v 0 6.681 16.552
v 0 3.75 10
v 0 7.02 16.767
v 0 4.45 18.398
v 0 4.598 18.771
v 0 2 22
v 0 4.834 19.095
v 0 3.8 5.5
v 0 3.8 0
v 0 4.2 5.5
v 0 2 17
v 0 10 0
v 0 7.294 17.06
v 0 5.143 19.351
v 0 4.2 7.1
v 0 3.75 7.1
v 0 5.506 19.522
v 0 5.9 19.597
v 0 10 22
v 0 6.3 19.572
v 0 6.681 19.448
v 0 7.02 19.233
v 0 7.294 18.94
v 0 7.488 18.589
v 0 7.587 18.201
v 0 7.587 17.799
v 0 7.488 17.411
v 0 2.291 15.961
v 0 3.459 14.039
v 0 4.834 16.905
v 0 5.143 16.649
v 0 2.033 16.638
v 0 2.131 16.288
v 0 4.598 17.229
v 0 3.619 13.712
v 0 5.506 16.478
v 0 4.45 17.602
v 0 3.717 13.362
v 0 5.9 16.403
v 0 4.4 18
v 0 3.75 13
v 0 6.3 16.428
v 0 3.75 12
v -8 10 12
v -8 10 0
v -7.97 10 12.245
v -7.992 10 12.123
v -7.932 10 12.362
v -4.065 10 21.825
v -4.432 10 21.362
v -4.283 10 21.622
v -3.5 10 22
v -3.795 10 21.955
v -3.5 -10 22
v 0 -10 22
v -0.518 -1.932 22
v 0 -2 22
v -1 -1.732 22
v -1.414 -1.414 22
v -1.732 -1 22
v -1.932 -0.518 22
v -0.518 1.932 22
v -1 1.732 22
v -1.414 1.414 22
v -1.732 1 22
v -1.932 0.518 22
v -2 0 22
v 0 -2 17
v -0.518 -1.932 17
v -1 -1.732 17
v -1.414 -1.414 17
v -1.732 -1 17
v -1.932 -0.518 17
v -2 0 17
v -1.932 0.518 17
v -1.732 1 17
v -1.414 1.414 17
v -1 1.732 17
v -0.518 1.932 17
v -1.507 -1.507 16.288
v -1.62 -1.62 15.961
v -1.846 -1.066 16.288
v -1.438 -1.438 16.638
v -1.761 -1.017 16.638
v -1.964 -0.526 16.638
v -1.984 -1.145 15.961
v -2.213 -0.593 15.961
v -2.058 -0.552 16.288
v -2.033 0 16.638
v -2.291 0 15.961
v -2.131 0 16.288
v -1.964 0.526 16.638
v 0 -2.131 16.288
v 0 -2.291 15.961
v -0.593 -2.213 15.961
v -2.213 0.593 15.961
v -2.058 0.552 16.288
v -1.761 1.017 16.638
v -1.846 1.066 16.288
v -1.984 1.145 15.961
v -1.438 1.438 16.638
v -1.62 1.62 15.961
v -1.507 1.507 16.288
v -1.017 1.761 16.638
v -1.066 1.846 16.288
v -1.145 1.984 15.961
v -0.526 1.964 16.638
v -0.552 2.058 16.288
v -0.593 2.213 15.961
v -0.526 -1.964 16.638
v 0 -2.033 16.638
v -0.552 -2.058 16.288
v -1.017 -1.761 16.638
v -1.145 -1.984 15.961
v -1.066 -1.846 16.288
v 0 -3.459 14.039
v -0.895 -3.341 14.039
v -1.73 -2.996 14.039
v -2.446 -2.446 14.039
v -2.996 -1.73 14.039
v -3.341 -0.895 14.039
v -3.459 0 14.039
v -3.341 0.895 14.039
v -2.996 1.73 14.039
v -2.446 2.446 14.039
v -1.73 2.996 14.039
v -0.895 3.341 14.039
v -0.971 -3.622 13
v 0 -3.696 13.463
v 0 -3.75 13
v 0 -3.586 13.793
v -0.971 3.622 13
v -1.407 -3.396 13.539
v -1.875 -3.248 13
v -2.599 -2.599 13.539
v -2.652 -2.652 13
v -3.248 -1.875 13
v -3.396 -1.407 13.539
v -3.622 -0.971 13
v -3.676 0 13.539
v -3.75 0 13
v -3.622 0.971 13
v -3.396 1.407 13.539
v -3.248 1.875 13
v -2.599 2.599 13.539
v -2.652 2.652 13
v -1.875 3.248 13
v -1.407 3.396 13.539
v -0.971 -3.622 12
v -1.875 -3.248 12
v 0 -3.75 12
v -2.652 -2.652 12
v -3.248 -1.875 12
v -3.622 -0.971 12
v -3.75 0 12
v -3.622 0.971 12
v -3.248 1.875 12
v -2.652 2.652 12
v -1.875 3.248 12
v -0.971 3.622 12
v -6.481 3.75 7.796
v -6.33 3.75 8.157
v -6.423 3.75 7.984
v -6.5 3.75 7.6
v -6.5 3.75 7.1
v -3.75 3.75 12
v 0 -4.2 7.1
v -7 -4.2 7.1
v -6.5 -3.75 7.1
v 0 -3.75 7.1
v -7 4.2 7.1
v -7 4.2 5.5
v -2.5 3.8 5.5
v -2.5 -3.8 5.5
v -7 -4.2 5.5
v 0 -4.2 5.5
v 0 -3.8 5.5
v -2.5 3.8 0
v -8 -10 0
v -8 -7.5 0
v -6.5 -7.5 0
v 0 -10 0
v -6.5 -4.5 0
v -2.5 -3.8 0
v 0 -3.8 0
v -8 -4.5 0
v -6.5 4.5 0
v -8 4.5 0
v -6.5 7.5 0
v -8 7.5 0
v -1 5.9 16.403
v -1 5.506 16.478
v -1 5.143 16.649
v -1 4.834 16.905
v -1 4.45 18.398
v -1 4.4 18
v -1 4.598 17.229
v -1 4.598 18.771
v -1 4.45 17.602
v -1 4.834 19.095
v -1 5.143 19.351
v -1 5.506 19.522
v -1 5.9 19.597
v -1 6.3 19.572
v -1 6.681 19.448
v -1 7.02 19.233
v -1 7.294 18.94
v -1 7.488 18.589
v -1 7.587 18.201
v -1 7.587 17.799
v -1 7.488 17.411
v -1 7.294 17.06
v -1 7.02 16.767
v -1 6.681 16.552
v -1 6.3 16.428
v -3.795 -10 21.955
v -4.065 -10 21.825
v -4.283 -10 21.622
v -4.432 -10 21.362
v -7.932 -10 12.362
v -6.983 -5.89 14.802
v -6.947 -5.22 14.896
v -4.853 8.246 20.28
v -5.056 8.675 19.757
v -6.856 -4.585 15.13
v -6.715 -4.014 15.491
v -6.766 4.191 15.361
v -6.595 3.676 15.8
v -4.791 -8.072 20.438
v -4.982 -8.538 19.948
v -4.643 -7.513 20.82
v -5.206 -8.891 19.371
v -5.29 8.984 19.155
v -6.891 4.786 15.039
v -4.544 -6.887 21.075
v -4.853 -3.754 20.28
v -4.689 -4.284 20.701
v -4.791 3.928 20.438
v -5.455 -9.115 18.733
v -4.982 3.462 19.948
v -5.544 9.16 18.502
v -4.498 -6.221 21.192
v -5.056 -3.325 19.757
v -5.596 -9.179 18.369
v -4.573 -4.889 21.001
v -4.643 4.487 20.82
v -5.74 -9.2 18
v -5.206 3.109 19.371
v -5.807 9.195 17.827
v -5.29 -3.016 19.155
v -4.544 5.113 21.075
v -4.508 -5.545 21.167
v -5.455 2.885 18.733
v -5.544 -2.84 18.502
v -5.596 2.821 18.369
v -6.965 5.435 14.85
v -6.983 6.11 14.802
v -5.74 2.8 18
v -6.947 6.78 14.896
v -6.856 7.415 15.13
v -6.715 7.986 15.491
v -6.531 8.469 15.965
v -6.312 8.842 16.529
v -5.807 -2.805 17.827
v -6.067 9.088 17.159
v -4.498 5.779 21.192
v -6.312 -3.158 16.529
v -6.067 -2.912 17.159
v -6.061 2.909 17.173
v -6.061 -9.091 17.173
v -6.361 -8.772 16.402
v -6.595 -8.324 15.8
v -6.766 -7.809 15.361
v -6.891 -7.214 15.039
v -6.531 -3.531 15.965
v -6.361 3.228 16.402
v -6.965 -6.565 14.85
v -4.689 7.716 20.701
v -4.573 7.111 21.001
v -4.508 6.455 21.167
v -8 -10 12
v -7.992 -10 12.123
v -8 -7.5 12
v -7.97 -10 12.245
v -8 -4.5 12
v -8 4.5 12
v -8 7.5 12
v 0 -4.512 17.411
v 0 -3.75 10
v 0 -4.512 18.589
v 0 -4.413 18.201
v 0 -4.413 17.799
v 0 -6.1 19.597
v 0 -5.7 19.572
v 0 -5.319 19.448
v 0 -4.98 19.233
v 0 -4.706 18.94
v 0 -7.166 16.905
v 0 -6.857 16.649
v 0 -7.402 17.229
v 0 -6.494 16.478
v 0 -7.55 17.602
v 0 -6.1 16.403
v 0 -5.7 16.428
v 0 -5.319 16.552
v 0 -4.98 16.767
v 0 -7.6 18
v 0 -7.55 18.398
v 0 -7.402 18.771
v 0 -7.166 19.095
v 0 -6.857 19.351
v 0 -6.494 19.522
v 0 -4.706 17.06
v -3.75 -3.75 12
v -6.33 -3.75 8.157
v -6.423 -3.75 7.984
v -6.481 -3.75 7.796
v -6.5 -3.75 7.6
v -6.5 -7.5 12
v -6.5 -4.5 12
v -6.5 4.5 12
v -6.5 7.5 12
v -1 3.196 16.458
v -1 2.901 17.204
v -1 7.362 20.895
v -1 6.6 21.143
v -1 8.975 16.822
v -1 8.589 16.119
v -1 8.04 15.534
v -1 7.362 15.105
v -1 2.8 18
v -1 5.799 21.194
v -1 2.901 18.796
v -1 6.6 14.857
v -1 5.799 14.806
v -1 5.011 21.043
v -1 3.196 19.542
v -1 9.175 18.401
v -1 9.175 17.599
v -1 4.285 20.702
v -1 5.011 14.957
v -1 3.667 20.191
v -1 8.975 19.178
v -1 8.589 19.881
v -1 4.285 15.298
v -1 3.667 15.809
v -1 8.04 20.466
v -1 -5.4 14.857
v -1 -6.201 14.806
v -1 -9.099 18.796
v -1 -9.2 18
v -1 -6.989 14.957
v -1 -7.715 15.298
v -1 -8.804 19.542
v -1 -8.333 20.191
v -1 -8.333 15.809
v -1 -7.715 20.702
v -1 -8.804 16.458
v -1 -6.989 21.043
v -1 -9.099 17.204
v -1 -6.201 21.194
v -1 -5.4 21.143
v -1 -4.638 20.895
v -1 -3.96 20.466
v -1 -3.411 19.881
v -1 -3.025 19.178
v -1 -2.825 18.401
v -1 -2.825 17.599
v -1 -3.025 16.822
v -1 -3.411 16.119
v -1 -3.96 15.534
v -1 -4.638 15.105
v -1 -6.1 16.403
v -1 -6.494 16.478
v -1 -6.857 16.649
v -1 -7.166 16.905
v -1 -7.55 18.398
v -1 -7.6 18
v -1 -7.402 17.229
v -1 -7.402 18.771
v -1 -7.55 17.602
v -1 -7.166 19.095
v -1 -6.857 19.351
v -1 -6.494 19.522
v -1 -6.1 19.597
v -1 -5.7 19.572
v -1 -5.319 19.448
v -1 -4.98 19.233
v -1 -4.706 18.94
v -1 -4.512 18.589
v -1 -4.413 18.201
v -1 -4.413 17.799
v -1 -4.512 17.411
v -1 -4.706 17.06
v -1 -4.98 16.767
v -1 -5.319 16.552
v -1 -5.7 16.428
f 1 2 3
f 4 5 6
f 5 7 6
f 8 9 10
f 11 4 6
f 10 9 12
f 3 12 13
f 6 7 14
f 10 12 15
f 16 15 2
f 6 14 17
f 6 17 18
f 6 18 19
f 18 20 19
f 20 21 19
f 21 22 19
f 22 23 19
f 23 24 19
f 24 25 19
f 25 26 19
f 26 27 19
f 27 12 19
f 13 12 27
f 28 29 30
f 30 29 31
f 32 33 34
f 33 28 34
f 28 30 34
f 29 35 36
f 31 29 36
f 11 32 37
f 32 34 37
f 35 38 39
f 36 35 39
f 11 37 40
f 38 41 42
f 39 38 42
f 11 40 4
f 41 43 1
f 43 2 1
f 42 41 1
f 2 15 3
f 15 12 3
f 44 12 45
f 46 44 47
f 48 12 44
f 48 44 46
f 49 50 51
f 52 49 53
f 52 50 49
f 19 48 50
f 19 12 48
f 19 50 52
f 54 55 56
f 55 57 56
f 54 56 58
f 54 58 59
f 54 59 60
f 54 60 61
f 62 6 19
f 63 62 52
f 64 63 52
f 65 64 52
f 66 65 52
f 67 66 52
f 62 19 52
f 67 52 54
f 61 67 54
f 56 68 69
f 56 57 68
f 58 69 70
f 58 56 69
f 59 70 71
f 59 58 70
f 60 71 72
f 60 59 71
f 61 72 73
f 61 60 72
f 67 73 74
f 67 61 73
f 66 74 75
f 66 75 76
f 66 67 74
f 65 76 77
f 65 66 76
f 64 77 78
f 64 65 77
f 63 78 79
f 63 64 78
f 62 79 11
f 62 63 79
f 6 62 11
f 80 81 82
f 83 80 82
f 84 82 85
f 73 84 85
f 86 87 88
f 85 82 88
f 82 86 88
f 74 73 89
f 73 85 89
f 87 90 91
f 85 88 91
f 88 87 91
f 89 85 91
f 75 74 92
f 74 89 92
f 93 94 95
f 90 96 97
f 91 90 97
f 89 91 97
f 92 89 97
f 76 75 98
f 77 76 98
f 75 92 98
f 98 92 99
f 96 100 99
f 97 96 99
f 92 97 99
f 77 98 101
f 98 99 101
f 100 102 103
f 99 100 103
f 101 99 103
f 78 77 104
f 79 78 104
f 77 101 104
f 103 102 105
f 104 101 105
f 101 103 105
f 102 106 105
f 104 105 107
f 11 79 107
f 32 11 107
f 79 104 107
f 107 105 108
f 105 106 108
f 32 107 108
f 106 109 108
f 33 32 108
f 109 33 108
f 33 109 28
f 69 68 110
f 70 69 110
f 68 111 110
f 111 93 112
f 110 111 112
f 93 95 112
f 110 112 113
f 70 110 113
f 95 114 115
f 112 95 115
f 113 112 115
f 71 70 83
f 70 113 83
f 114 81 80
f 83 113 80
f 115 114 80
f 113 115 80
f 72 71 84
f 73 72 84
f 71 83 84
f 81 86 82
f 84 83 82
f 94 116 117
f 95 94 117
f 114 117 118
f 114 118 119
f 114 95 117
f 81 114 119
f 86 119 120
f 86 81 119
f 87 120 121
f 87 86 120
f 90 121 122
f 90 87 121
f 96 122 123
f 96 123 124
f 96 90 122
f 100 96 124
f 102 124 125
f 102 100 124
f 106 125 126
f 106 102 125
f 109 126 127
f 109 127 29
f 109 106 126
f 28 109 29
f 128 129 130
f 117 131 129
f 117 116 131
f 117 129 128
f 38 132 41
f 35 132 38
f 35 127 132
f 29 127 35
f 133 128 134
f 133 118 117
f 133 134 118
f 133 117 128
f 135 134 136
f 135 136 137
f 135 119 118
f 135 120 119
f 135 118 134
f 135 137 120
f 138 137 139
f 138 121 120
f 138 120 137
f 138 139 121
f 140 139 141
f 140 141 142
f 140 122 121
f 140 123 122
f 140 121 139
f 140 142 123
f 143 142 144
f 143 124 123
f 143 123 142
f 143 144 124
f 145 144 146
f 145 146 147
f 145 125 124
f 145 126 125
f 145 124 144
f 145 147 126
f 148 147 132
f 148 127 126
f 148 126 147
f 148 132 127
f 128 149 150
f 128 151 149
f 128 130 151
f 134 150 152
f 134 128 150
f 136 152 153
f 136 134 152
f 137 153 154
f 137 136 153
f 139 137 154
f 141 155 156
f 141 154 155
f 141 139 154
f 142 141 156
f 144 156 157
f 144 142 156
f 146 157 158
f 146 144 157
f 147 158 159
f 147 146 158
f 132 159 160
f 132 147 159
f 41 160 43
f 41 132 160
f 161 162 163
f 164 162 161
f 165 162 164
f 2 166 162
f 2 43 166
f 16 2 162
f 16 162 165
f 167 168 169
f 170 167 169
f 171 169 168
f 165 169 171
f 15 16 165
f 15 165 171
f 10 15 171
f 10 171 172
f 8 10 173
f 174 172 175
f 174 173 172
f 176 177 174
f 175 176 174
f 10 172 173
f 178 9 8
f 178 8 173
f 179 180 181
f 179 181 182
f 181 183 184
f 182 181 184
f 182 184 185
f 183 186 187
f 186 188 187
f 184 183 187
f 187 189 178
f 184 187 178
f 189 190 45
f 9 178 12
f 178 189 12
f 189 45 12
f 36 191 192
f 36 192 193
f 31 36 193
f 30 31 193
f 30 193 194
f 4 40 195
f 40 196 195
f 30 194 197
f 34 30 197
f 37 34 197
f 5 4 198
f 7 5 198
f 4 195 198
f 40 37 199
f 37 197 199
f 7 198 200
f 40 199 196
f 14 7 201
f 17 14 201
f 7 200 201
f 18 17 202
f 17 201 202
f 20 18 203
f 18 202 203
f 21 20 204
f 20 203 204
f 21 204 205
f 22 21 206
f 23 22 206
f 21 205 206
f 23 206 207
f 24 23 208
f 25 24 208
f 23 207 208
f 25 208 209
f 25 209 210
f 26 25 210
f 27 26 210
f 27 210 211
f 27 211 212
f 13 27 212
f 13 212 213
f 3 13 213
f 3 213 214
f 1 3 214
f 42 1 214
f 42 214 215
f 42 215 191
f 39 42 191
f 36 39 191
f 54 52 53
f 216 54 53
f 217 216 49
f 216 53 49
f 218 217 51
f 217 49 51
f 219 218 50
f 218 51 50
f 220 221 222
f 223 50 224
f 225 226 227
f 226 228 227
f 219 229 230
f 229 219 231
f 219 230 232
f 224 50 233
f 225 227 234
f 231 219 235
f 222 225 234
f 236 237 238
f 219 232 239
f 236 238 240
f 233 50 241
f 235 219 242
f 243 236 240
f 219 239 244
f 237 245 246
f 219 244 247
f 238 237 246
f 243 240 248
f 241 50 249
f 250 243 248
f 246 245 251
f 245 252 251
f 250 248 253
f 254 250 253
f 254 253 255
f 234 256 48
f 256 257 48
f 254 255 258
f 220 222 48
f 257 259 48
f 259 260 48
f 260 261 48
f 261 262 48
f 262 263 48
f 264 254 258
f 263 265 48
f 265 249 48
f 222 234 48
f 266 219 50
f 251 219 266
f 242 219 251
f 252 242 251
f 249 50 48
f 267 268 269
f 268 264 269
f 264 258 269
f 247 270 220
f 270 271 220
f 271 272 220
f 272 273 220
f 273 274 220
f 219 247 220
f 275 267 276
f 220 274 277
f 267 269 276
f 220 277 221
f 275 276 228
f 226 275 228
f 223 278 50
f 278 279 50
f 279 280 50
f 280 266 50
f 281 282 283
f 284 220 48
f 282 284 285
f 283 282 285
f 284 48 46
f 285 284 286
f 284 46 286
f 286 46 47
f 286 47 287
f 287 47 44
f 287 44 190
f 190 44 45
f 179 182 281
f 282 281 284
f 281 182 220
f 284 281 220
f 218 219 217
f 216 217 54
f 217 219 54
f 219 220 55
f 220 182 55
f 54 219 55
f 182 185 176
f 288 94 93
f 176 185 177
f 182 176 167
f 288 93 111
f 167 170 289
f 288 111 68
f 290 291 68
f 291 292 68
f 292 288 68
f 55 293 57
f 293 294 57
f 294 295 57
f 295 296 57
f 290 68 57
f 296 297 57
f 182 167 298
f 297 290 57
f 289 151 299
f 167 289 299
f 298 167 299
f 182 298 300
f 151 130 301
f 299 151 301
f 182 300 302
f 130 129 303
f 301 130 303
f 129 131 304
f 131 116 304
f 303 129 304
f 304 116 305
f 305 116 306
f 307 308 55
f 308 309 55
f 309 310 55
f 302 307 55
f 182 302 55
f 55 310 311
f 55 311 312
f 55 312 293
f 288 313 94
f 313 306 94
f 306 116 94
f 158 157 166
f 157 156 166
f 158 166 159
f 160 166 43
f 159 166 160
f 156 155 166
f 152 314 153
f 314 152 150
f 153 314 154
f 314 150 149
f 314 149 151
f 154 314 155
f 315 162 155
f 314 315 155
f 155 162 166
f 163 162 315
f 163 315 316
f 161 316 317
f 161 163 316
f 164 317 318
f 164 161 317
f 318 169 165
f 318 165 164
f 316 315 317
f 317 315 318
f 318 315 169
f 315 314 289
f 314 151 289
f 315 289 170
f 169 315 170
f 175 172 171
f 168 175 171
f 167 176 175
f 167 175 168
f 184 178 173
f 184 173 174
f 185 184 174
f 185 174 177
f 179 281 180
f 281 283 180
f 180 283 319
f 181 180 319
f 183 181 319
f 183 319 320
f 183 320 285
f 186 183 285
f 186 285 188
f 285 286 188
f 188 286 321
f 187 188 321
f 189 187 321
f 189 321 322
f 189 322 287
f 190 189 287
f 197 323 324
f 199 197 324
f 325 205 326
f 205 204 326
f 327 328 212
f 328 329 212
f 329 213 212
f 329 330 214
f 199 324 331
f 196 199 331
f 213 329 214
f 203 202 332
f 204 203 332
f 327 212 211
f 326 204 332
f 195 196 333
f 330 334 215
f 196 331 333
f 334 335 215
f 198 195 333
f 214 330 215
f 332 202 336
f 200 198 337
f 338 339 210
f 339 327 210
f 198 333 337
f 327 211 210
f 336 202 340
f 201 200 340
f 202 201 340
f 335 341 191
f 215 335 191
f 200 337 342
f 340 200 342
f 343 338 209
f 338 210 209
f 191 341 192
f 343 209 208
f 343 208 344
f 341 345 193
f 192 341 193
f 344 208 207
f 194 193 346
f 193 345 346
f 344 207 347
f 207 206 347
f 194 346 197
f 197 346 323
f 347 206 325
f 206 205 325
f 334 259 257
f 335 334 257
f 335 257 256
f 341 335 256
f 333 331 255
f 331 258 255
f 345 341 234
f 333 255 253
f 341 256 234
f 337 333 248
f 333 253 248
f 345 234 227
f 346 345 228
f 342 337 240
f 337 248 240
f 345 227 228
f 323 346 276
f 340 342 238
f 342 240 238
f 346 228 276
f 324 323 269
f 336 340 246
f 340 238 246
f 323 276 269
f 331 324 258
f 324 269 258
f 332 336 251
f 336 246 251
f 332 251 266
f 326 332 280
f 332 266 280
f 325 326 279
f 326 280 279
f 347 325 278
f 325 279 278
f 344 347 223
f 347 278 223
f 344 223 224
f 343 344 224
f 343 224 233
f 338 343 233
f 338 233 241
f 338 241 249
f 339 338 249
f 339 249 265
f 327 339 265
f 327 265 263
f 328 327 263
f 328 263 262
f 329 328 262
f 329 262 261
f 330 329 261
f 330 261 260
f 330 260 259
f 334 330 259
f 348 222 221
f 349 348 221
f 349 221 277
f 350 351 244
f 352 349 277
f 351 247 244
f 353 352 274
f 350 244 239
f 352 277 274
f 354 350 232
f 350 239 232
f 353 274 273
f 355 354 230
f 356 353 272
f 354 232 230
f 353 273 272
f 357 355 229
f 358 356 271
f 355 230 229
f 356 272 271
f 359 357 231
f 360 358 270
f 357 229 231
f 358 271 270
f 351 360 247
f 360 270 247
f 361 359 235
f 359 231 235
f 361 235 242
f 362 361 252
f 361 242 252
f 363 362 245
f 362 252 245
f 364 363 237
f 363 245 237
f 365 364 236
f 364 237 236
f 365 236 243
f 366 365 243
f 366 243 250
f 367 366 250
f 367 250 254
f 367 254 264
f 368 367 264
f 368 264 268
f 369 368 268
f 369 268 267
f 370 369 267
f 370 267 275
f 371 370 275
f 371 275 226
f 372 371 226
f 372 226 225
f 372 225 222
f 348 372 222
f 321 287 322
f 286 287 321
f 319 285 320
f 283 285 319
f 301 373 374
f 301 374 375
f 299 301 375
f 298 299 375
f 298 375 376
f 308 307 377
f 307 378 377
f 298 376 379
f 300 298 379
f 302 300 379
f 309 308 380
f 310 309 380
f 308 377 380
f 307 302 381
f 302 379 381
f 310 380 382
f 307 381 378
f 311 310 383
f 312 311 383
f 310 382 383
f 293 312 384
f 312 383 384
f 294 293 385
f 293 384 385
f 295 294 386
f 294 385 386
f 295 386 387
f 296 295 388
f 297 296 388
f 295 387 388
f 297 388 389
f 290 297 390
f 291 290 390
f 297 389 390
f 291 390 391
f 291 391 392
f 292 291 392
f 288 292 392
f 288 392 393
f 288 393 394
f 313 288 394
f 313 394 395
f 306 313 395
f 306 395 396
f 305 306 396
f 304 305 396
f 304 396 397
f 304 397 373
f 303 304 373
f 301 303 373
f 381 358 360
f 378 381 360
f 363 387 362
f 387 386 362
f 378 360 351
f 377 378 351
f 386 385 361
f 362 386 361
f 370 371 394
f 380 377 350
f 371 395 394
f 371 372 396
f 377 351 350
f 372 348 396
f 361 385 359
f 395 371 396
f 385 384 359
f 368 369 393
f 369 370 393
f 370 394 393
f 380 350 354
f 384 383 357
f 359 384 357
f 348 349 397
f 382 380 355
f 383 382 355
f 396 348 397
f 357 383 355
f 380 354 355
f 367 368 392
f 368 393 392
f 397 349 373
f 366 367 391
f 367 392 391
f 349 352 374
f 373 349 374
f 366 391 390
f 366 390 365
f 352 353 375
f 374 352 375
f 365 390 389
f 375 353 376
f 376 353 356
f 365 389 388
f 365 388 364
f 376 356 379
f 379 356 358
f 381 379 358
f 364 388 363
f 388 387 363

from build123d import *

# Parameters (mm, degrees)
PAD001_DEPTH    = 3.75
PAD_DEPTH       = 10
SKETCH002_W     = 1.6
SKETCH002_H     = 8.4
POCKET_DEPTH    = 7
SKETCH006_R     = 3.2
POCKET001_DEPTH = 7
SKETCH007_R     = 1.6
POCKET002_DEPTH = 8
SKETCH008_W     = 2.5
SKETCH008_H     = 7.6
POCKET003_DEPTH = 5.5
SKETCH009_W     = 3
SKETCH009_H     = 3
POCKET004_DEPTH = 12


with BuildPart() as revolution:
    # Sketch004 → Revolution (revolve)
    with BuildSketch(Plane.YZ):
        with BuildLine():
            Line((0, 24), (0, 10))
            Line((0, 10), (3.75, 10))
            Line((3.75, 10), (3.75, 13))
            ThreePointArc((3.75, 13), (3.675928, 13.53926), (3.459199, 14.038576))
            Line((3.459199, 14.038576), (2.290801, 15.961424))
            ThreePointArc((2, 17), (2.074072, 16.46074), (2.290801, 15.961424))
            Line((2, 17), (2, 24))
            Line((2, 24), (0, 24))
        make_face()
    revolve(axis=Axis((0, 0, 0), (0, 0, 1)))


with BuildPart() as pad001:
    # Sketch005 → Pad001 (new body, symmetric)
    with BuildSketch(Plane.XZ):
        with BuildLine():
            Line((-6.5, 7.1), (-6.5, 7.6))
            ThreePointArc((-6.3302, 8.157466), (-6.456609, 7.891376), (-6.5, 7.6))
            Line((-6.3302, 8.157466), (-3.75, 12))
            Line((-3.75, 12), (0, 12))
            Line((0, 12), (0, 7.1))
            Line((0, 7.1), (-6.5, 7.1))
        make_face()
    extrude(amount=PAD001_DEPTH, both=True)


with BuildPart() as pocket004:
    # Sketch → Pad (new body, symmetric)
    with BuildSketch(Plane.XZ):
        with BuildLine():
            Line((0, 0), (0, 22))
            Line((0, 22), (-3.5, 22))
            ThreePointArc((-3.5, 22), (-4.064603, 21.825362), (-4.432005, 21.362446))
            Line((-4.432005, 21.362446), (-7.932005, 12.362446))
            ThreePointArc((-7.932005, 12.362446), (-7.982854, 12.184385), (-8, 12))
            Line((-8, 12), (-8, 0))
            Line((-8, 0), (0, 0))
        make_face()
    extrude(amount=PAD_DEPTH, both=True)

    # Sketch002 → Pocket (cut)
    with BuildSketch(Plane(origin=(0, 0, 0), x_dir=(0, 0, 1), z_dir=(1, 0, 0))):
        with Locations((6.3, 0)):
            Rectangle(SKETCH002_W, SKETCH002_H)
    extrude(amount=-POCKET_DEPTH, mode=Mode.SUBTRACT)

    # Cut: cut Pad001
    add(pad001.part, mode=Mode.SUBTRACT)

    # Cut001: cut Revolution
    add(revolution.part, mode=Mode.SUBTRACT)

    # Sketch006 → Pocket001 (cut)
    with BuildSketch(Plane(origin=(-8, 0, 0), x_dir=(0, -1, 0), z_dir=(-1, 0, 0))):
        with Locations((-6, 18)):
            Circle(SKETCH006_R)
        with Locations((6, 18)):
            Circle(SKETCH006_R)
    extrude(amount=-POCKET001_DEPTH, mode=Mode.SUBTRACT)

    # Sketch007 → Pocket002 (cut)
    with BuildSketch(Plane(origin=(-8, 0, 0), x_dir=(0, -1, 0), z_dir=(-1, 0, 0))):
        with Locations((-6, 18)):
            Circle(SKETCH007_R)
        with Locations((6, 18)):
            Circle(SKETCH007_R)
    extrude(amount=-POCKET002_DEPTH, mode=Mode.SUBTRACT)

    # Sketch008 → Pocket003 (cut)
    with BuildSketch(Plane(origin=(0, 0, 0), x_dir=(1, 0, 0), z_dir=(0, 0, -1))):
        with Locations((-1.25, 0)):
            Rectangle(SKETCH008_W, SKETCH008_H)
    extrude(amount=-POCKET003_DEPTH, mode=Mode.SUBTRACT)

    # Sketch009 → Pocket004 (cut)
    with BuildSketch(Plane(origin=(0, 0, 0), x_dir=(1, 0, 0), z_dir=(0, 0, -1))):
        with Locations((-8, 6)):
            Rectangle(SKETCH009_W, SKETCH009_H)
        with Locations((-8, -6)):
            Rectangle(SKETCH009_W, SKETCH009_H)
    extrude(amount=-POCKET004_DEPTH, mode=Mode.SUBTRACT)


solid = pocket004.part
